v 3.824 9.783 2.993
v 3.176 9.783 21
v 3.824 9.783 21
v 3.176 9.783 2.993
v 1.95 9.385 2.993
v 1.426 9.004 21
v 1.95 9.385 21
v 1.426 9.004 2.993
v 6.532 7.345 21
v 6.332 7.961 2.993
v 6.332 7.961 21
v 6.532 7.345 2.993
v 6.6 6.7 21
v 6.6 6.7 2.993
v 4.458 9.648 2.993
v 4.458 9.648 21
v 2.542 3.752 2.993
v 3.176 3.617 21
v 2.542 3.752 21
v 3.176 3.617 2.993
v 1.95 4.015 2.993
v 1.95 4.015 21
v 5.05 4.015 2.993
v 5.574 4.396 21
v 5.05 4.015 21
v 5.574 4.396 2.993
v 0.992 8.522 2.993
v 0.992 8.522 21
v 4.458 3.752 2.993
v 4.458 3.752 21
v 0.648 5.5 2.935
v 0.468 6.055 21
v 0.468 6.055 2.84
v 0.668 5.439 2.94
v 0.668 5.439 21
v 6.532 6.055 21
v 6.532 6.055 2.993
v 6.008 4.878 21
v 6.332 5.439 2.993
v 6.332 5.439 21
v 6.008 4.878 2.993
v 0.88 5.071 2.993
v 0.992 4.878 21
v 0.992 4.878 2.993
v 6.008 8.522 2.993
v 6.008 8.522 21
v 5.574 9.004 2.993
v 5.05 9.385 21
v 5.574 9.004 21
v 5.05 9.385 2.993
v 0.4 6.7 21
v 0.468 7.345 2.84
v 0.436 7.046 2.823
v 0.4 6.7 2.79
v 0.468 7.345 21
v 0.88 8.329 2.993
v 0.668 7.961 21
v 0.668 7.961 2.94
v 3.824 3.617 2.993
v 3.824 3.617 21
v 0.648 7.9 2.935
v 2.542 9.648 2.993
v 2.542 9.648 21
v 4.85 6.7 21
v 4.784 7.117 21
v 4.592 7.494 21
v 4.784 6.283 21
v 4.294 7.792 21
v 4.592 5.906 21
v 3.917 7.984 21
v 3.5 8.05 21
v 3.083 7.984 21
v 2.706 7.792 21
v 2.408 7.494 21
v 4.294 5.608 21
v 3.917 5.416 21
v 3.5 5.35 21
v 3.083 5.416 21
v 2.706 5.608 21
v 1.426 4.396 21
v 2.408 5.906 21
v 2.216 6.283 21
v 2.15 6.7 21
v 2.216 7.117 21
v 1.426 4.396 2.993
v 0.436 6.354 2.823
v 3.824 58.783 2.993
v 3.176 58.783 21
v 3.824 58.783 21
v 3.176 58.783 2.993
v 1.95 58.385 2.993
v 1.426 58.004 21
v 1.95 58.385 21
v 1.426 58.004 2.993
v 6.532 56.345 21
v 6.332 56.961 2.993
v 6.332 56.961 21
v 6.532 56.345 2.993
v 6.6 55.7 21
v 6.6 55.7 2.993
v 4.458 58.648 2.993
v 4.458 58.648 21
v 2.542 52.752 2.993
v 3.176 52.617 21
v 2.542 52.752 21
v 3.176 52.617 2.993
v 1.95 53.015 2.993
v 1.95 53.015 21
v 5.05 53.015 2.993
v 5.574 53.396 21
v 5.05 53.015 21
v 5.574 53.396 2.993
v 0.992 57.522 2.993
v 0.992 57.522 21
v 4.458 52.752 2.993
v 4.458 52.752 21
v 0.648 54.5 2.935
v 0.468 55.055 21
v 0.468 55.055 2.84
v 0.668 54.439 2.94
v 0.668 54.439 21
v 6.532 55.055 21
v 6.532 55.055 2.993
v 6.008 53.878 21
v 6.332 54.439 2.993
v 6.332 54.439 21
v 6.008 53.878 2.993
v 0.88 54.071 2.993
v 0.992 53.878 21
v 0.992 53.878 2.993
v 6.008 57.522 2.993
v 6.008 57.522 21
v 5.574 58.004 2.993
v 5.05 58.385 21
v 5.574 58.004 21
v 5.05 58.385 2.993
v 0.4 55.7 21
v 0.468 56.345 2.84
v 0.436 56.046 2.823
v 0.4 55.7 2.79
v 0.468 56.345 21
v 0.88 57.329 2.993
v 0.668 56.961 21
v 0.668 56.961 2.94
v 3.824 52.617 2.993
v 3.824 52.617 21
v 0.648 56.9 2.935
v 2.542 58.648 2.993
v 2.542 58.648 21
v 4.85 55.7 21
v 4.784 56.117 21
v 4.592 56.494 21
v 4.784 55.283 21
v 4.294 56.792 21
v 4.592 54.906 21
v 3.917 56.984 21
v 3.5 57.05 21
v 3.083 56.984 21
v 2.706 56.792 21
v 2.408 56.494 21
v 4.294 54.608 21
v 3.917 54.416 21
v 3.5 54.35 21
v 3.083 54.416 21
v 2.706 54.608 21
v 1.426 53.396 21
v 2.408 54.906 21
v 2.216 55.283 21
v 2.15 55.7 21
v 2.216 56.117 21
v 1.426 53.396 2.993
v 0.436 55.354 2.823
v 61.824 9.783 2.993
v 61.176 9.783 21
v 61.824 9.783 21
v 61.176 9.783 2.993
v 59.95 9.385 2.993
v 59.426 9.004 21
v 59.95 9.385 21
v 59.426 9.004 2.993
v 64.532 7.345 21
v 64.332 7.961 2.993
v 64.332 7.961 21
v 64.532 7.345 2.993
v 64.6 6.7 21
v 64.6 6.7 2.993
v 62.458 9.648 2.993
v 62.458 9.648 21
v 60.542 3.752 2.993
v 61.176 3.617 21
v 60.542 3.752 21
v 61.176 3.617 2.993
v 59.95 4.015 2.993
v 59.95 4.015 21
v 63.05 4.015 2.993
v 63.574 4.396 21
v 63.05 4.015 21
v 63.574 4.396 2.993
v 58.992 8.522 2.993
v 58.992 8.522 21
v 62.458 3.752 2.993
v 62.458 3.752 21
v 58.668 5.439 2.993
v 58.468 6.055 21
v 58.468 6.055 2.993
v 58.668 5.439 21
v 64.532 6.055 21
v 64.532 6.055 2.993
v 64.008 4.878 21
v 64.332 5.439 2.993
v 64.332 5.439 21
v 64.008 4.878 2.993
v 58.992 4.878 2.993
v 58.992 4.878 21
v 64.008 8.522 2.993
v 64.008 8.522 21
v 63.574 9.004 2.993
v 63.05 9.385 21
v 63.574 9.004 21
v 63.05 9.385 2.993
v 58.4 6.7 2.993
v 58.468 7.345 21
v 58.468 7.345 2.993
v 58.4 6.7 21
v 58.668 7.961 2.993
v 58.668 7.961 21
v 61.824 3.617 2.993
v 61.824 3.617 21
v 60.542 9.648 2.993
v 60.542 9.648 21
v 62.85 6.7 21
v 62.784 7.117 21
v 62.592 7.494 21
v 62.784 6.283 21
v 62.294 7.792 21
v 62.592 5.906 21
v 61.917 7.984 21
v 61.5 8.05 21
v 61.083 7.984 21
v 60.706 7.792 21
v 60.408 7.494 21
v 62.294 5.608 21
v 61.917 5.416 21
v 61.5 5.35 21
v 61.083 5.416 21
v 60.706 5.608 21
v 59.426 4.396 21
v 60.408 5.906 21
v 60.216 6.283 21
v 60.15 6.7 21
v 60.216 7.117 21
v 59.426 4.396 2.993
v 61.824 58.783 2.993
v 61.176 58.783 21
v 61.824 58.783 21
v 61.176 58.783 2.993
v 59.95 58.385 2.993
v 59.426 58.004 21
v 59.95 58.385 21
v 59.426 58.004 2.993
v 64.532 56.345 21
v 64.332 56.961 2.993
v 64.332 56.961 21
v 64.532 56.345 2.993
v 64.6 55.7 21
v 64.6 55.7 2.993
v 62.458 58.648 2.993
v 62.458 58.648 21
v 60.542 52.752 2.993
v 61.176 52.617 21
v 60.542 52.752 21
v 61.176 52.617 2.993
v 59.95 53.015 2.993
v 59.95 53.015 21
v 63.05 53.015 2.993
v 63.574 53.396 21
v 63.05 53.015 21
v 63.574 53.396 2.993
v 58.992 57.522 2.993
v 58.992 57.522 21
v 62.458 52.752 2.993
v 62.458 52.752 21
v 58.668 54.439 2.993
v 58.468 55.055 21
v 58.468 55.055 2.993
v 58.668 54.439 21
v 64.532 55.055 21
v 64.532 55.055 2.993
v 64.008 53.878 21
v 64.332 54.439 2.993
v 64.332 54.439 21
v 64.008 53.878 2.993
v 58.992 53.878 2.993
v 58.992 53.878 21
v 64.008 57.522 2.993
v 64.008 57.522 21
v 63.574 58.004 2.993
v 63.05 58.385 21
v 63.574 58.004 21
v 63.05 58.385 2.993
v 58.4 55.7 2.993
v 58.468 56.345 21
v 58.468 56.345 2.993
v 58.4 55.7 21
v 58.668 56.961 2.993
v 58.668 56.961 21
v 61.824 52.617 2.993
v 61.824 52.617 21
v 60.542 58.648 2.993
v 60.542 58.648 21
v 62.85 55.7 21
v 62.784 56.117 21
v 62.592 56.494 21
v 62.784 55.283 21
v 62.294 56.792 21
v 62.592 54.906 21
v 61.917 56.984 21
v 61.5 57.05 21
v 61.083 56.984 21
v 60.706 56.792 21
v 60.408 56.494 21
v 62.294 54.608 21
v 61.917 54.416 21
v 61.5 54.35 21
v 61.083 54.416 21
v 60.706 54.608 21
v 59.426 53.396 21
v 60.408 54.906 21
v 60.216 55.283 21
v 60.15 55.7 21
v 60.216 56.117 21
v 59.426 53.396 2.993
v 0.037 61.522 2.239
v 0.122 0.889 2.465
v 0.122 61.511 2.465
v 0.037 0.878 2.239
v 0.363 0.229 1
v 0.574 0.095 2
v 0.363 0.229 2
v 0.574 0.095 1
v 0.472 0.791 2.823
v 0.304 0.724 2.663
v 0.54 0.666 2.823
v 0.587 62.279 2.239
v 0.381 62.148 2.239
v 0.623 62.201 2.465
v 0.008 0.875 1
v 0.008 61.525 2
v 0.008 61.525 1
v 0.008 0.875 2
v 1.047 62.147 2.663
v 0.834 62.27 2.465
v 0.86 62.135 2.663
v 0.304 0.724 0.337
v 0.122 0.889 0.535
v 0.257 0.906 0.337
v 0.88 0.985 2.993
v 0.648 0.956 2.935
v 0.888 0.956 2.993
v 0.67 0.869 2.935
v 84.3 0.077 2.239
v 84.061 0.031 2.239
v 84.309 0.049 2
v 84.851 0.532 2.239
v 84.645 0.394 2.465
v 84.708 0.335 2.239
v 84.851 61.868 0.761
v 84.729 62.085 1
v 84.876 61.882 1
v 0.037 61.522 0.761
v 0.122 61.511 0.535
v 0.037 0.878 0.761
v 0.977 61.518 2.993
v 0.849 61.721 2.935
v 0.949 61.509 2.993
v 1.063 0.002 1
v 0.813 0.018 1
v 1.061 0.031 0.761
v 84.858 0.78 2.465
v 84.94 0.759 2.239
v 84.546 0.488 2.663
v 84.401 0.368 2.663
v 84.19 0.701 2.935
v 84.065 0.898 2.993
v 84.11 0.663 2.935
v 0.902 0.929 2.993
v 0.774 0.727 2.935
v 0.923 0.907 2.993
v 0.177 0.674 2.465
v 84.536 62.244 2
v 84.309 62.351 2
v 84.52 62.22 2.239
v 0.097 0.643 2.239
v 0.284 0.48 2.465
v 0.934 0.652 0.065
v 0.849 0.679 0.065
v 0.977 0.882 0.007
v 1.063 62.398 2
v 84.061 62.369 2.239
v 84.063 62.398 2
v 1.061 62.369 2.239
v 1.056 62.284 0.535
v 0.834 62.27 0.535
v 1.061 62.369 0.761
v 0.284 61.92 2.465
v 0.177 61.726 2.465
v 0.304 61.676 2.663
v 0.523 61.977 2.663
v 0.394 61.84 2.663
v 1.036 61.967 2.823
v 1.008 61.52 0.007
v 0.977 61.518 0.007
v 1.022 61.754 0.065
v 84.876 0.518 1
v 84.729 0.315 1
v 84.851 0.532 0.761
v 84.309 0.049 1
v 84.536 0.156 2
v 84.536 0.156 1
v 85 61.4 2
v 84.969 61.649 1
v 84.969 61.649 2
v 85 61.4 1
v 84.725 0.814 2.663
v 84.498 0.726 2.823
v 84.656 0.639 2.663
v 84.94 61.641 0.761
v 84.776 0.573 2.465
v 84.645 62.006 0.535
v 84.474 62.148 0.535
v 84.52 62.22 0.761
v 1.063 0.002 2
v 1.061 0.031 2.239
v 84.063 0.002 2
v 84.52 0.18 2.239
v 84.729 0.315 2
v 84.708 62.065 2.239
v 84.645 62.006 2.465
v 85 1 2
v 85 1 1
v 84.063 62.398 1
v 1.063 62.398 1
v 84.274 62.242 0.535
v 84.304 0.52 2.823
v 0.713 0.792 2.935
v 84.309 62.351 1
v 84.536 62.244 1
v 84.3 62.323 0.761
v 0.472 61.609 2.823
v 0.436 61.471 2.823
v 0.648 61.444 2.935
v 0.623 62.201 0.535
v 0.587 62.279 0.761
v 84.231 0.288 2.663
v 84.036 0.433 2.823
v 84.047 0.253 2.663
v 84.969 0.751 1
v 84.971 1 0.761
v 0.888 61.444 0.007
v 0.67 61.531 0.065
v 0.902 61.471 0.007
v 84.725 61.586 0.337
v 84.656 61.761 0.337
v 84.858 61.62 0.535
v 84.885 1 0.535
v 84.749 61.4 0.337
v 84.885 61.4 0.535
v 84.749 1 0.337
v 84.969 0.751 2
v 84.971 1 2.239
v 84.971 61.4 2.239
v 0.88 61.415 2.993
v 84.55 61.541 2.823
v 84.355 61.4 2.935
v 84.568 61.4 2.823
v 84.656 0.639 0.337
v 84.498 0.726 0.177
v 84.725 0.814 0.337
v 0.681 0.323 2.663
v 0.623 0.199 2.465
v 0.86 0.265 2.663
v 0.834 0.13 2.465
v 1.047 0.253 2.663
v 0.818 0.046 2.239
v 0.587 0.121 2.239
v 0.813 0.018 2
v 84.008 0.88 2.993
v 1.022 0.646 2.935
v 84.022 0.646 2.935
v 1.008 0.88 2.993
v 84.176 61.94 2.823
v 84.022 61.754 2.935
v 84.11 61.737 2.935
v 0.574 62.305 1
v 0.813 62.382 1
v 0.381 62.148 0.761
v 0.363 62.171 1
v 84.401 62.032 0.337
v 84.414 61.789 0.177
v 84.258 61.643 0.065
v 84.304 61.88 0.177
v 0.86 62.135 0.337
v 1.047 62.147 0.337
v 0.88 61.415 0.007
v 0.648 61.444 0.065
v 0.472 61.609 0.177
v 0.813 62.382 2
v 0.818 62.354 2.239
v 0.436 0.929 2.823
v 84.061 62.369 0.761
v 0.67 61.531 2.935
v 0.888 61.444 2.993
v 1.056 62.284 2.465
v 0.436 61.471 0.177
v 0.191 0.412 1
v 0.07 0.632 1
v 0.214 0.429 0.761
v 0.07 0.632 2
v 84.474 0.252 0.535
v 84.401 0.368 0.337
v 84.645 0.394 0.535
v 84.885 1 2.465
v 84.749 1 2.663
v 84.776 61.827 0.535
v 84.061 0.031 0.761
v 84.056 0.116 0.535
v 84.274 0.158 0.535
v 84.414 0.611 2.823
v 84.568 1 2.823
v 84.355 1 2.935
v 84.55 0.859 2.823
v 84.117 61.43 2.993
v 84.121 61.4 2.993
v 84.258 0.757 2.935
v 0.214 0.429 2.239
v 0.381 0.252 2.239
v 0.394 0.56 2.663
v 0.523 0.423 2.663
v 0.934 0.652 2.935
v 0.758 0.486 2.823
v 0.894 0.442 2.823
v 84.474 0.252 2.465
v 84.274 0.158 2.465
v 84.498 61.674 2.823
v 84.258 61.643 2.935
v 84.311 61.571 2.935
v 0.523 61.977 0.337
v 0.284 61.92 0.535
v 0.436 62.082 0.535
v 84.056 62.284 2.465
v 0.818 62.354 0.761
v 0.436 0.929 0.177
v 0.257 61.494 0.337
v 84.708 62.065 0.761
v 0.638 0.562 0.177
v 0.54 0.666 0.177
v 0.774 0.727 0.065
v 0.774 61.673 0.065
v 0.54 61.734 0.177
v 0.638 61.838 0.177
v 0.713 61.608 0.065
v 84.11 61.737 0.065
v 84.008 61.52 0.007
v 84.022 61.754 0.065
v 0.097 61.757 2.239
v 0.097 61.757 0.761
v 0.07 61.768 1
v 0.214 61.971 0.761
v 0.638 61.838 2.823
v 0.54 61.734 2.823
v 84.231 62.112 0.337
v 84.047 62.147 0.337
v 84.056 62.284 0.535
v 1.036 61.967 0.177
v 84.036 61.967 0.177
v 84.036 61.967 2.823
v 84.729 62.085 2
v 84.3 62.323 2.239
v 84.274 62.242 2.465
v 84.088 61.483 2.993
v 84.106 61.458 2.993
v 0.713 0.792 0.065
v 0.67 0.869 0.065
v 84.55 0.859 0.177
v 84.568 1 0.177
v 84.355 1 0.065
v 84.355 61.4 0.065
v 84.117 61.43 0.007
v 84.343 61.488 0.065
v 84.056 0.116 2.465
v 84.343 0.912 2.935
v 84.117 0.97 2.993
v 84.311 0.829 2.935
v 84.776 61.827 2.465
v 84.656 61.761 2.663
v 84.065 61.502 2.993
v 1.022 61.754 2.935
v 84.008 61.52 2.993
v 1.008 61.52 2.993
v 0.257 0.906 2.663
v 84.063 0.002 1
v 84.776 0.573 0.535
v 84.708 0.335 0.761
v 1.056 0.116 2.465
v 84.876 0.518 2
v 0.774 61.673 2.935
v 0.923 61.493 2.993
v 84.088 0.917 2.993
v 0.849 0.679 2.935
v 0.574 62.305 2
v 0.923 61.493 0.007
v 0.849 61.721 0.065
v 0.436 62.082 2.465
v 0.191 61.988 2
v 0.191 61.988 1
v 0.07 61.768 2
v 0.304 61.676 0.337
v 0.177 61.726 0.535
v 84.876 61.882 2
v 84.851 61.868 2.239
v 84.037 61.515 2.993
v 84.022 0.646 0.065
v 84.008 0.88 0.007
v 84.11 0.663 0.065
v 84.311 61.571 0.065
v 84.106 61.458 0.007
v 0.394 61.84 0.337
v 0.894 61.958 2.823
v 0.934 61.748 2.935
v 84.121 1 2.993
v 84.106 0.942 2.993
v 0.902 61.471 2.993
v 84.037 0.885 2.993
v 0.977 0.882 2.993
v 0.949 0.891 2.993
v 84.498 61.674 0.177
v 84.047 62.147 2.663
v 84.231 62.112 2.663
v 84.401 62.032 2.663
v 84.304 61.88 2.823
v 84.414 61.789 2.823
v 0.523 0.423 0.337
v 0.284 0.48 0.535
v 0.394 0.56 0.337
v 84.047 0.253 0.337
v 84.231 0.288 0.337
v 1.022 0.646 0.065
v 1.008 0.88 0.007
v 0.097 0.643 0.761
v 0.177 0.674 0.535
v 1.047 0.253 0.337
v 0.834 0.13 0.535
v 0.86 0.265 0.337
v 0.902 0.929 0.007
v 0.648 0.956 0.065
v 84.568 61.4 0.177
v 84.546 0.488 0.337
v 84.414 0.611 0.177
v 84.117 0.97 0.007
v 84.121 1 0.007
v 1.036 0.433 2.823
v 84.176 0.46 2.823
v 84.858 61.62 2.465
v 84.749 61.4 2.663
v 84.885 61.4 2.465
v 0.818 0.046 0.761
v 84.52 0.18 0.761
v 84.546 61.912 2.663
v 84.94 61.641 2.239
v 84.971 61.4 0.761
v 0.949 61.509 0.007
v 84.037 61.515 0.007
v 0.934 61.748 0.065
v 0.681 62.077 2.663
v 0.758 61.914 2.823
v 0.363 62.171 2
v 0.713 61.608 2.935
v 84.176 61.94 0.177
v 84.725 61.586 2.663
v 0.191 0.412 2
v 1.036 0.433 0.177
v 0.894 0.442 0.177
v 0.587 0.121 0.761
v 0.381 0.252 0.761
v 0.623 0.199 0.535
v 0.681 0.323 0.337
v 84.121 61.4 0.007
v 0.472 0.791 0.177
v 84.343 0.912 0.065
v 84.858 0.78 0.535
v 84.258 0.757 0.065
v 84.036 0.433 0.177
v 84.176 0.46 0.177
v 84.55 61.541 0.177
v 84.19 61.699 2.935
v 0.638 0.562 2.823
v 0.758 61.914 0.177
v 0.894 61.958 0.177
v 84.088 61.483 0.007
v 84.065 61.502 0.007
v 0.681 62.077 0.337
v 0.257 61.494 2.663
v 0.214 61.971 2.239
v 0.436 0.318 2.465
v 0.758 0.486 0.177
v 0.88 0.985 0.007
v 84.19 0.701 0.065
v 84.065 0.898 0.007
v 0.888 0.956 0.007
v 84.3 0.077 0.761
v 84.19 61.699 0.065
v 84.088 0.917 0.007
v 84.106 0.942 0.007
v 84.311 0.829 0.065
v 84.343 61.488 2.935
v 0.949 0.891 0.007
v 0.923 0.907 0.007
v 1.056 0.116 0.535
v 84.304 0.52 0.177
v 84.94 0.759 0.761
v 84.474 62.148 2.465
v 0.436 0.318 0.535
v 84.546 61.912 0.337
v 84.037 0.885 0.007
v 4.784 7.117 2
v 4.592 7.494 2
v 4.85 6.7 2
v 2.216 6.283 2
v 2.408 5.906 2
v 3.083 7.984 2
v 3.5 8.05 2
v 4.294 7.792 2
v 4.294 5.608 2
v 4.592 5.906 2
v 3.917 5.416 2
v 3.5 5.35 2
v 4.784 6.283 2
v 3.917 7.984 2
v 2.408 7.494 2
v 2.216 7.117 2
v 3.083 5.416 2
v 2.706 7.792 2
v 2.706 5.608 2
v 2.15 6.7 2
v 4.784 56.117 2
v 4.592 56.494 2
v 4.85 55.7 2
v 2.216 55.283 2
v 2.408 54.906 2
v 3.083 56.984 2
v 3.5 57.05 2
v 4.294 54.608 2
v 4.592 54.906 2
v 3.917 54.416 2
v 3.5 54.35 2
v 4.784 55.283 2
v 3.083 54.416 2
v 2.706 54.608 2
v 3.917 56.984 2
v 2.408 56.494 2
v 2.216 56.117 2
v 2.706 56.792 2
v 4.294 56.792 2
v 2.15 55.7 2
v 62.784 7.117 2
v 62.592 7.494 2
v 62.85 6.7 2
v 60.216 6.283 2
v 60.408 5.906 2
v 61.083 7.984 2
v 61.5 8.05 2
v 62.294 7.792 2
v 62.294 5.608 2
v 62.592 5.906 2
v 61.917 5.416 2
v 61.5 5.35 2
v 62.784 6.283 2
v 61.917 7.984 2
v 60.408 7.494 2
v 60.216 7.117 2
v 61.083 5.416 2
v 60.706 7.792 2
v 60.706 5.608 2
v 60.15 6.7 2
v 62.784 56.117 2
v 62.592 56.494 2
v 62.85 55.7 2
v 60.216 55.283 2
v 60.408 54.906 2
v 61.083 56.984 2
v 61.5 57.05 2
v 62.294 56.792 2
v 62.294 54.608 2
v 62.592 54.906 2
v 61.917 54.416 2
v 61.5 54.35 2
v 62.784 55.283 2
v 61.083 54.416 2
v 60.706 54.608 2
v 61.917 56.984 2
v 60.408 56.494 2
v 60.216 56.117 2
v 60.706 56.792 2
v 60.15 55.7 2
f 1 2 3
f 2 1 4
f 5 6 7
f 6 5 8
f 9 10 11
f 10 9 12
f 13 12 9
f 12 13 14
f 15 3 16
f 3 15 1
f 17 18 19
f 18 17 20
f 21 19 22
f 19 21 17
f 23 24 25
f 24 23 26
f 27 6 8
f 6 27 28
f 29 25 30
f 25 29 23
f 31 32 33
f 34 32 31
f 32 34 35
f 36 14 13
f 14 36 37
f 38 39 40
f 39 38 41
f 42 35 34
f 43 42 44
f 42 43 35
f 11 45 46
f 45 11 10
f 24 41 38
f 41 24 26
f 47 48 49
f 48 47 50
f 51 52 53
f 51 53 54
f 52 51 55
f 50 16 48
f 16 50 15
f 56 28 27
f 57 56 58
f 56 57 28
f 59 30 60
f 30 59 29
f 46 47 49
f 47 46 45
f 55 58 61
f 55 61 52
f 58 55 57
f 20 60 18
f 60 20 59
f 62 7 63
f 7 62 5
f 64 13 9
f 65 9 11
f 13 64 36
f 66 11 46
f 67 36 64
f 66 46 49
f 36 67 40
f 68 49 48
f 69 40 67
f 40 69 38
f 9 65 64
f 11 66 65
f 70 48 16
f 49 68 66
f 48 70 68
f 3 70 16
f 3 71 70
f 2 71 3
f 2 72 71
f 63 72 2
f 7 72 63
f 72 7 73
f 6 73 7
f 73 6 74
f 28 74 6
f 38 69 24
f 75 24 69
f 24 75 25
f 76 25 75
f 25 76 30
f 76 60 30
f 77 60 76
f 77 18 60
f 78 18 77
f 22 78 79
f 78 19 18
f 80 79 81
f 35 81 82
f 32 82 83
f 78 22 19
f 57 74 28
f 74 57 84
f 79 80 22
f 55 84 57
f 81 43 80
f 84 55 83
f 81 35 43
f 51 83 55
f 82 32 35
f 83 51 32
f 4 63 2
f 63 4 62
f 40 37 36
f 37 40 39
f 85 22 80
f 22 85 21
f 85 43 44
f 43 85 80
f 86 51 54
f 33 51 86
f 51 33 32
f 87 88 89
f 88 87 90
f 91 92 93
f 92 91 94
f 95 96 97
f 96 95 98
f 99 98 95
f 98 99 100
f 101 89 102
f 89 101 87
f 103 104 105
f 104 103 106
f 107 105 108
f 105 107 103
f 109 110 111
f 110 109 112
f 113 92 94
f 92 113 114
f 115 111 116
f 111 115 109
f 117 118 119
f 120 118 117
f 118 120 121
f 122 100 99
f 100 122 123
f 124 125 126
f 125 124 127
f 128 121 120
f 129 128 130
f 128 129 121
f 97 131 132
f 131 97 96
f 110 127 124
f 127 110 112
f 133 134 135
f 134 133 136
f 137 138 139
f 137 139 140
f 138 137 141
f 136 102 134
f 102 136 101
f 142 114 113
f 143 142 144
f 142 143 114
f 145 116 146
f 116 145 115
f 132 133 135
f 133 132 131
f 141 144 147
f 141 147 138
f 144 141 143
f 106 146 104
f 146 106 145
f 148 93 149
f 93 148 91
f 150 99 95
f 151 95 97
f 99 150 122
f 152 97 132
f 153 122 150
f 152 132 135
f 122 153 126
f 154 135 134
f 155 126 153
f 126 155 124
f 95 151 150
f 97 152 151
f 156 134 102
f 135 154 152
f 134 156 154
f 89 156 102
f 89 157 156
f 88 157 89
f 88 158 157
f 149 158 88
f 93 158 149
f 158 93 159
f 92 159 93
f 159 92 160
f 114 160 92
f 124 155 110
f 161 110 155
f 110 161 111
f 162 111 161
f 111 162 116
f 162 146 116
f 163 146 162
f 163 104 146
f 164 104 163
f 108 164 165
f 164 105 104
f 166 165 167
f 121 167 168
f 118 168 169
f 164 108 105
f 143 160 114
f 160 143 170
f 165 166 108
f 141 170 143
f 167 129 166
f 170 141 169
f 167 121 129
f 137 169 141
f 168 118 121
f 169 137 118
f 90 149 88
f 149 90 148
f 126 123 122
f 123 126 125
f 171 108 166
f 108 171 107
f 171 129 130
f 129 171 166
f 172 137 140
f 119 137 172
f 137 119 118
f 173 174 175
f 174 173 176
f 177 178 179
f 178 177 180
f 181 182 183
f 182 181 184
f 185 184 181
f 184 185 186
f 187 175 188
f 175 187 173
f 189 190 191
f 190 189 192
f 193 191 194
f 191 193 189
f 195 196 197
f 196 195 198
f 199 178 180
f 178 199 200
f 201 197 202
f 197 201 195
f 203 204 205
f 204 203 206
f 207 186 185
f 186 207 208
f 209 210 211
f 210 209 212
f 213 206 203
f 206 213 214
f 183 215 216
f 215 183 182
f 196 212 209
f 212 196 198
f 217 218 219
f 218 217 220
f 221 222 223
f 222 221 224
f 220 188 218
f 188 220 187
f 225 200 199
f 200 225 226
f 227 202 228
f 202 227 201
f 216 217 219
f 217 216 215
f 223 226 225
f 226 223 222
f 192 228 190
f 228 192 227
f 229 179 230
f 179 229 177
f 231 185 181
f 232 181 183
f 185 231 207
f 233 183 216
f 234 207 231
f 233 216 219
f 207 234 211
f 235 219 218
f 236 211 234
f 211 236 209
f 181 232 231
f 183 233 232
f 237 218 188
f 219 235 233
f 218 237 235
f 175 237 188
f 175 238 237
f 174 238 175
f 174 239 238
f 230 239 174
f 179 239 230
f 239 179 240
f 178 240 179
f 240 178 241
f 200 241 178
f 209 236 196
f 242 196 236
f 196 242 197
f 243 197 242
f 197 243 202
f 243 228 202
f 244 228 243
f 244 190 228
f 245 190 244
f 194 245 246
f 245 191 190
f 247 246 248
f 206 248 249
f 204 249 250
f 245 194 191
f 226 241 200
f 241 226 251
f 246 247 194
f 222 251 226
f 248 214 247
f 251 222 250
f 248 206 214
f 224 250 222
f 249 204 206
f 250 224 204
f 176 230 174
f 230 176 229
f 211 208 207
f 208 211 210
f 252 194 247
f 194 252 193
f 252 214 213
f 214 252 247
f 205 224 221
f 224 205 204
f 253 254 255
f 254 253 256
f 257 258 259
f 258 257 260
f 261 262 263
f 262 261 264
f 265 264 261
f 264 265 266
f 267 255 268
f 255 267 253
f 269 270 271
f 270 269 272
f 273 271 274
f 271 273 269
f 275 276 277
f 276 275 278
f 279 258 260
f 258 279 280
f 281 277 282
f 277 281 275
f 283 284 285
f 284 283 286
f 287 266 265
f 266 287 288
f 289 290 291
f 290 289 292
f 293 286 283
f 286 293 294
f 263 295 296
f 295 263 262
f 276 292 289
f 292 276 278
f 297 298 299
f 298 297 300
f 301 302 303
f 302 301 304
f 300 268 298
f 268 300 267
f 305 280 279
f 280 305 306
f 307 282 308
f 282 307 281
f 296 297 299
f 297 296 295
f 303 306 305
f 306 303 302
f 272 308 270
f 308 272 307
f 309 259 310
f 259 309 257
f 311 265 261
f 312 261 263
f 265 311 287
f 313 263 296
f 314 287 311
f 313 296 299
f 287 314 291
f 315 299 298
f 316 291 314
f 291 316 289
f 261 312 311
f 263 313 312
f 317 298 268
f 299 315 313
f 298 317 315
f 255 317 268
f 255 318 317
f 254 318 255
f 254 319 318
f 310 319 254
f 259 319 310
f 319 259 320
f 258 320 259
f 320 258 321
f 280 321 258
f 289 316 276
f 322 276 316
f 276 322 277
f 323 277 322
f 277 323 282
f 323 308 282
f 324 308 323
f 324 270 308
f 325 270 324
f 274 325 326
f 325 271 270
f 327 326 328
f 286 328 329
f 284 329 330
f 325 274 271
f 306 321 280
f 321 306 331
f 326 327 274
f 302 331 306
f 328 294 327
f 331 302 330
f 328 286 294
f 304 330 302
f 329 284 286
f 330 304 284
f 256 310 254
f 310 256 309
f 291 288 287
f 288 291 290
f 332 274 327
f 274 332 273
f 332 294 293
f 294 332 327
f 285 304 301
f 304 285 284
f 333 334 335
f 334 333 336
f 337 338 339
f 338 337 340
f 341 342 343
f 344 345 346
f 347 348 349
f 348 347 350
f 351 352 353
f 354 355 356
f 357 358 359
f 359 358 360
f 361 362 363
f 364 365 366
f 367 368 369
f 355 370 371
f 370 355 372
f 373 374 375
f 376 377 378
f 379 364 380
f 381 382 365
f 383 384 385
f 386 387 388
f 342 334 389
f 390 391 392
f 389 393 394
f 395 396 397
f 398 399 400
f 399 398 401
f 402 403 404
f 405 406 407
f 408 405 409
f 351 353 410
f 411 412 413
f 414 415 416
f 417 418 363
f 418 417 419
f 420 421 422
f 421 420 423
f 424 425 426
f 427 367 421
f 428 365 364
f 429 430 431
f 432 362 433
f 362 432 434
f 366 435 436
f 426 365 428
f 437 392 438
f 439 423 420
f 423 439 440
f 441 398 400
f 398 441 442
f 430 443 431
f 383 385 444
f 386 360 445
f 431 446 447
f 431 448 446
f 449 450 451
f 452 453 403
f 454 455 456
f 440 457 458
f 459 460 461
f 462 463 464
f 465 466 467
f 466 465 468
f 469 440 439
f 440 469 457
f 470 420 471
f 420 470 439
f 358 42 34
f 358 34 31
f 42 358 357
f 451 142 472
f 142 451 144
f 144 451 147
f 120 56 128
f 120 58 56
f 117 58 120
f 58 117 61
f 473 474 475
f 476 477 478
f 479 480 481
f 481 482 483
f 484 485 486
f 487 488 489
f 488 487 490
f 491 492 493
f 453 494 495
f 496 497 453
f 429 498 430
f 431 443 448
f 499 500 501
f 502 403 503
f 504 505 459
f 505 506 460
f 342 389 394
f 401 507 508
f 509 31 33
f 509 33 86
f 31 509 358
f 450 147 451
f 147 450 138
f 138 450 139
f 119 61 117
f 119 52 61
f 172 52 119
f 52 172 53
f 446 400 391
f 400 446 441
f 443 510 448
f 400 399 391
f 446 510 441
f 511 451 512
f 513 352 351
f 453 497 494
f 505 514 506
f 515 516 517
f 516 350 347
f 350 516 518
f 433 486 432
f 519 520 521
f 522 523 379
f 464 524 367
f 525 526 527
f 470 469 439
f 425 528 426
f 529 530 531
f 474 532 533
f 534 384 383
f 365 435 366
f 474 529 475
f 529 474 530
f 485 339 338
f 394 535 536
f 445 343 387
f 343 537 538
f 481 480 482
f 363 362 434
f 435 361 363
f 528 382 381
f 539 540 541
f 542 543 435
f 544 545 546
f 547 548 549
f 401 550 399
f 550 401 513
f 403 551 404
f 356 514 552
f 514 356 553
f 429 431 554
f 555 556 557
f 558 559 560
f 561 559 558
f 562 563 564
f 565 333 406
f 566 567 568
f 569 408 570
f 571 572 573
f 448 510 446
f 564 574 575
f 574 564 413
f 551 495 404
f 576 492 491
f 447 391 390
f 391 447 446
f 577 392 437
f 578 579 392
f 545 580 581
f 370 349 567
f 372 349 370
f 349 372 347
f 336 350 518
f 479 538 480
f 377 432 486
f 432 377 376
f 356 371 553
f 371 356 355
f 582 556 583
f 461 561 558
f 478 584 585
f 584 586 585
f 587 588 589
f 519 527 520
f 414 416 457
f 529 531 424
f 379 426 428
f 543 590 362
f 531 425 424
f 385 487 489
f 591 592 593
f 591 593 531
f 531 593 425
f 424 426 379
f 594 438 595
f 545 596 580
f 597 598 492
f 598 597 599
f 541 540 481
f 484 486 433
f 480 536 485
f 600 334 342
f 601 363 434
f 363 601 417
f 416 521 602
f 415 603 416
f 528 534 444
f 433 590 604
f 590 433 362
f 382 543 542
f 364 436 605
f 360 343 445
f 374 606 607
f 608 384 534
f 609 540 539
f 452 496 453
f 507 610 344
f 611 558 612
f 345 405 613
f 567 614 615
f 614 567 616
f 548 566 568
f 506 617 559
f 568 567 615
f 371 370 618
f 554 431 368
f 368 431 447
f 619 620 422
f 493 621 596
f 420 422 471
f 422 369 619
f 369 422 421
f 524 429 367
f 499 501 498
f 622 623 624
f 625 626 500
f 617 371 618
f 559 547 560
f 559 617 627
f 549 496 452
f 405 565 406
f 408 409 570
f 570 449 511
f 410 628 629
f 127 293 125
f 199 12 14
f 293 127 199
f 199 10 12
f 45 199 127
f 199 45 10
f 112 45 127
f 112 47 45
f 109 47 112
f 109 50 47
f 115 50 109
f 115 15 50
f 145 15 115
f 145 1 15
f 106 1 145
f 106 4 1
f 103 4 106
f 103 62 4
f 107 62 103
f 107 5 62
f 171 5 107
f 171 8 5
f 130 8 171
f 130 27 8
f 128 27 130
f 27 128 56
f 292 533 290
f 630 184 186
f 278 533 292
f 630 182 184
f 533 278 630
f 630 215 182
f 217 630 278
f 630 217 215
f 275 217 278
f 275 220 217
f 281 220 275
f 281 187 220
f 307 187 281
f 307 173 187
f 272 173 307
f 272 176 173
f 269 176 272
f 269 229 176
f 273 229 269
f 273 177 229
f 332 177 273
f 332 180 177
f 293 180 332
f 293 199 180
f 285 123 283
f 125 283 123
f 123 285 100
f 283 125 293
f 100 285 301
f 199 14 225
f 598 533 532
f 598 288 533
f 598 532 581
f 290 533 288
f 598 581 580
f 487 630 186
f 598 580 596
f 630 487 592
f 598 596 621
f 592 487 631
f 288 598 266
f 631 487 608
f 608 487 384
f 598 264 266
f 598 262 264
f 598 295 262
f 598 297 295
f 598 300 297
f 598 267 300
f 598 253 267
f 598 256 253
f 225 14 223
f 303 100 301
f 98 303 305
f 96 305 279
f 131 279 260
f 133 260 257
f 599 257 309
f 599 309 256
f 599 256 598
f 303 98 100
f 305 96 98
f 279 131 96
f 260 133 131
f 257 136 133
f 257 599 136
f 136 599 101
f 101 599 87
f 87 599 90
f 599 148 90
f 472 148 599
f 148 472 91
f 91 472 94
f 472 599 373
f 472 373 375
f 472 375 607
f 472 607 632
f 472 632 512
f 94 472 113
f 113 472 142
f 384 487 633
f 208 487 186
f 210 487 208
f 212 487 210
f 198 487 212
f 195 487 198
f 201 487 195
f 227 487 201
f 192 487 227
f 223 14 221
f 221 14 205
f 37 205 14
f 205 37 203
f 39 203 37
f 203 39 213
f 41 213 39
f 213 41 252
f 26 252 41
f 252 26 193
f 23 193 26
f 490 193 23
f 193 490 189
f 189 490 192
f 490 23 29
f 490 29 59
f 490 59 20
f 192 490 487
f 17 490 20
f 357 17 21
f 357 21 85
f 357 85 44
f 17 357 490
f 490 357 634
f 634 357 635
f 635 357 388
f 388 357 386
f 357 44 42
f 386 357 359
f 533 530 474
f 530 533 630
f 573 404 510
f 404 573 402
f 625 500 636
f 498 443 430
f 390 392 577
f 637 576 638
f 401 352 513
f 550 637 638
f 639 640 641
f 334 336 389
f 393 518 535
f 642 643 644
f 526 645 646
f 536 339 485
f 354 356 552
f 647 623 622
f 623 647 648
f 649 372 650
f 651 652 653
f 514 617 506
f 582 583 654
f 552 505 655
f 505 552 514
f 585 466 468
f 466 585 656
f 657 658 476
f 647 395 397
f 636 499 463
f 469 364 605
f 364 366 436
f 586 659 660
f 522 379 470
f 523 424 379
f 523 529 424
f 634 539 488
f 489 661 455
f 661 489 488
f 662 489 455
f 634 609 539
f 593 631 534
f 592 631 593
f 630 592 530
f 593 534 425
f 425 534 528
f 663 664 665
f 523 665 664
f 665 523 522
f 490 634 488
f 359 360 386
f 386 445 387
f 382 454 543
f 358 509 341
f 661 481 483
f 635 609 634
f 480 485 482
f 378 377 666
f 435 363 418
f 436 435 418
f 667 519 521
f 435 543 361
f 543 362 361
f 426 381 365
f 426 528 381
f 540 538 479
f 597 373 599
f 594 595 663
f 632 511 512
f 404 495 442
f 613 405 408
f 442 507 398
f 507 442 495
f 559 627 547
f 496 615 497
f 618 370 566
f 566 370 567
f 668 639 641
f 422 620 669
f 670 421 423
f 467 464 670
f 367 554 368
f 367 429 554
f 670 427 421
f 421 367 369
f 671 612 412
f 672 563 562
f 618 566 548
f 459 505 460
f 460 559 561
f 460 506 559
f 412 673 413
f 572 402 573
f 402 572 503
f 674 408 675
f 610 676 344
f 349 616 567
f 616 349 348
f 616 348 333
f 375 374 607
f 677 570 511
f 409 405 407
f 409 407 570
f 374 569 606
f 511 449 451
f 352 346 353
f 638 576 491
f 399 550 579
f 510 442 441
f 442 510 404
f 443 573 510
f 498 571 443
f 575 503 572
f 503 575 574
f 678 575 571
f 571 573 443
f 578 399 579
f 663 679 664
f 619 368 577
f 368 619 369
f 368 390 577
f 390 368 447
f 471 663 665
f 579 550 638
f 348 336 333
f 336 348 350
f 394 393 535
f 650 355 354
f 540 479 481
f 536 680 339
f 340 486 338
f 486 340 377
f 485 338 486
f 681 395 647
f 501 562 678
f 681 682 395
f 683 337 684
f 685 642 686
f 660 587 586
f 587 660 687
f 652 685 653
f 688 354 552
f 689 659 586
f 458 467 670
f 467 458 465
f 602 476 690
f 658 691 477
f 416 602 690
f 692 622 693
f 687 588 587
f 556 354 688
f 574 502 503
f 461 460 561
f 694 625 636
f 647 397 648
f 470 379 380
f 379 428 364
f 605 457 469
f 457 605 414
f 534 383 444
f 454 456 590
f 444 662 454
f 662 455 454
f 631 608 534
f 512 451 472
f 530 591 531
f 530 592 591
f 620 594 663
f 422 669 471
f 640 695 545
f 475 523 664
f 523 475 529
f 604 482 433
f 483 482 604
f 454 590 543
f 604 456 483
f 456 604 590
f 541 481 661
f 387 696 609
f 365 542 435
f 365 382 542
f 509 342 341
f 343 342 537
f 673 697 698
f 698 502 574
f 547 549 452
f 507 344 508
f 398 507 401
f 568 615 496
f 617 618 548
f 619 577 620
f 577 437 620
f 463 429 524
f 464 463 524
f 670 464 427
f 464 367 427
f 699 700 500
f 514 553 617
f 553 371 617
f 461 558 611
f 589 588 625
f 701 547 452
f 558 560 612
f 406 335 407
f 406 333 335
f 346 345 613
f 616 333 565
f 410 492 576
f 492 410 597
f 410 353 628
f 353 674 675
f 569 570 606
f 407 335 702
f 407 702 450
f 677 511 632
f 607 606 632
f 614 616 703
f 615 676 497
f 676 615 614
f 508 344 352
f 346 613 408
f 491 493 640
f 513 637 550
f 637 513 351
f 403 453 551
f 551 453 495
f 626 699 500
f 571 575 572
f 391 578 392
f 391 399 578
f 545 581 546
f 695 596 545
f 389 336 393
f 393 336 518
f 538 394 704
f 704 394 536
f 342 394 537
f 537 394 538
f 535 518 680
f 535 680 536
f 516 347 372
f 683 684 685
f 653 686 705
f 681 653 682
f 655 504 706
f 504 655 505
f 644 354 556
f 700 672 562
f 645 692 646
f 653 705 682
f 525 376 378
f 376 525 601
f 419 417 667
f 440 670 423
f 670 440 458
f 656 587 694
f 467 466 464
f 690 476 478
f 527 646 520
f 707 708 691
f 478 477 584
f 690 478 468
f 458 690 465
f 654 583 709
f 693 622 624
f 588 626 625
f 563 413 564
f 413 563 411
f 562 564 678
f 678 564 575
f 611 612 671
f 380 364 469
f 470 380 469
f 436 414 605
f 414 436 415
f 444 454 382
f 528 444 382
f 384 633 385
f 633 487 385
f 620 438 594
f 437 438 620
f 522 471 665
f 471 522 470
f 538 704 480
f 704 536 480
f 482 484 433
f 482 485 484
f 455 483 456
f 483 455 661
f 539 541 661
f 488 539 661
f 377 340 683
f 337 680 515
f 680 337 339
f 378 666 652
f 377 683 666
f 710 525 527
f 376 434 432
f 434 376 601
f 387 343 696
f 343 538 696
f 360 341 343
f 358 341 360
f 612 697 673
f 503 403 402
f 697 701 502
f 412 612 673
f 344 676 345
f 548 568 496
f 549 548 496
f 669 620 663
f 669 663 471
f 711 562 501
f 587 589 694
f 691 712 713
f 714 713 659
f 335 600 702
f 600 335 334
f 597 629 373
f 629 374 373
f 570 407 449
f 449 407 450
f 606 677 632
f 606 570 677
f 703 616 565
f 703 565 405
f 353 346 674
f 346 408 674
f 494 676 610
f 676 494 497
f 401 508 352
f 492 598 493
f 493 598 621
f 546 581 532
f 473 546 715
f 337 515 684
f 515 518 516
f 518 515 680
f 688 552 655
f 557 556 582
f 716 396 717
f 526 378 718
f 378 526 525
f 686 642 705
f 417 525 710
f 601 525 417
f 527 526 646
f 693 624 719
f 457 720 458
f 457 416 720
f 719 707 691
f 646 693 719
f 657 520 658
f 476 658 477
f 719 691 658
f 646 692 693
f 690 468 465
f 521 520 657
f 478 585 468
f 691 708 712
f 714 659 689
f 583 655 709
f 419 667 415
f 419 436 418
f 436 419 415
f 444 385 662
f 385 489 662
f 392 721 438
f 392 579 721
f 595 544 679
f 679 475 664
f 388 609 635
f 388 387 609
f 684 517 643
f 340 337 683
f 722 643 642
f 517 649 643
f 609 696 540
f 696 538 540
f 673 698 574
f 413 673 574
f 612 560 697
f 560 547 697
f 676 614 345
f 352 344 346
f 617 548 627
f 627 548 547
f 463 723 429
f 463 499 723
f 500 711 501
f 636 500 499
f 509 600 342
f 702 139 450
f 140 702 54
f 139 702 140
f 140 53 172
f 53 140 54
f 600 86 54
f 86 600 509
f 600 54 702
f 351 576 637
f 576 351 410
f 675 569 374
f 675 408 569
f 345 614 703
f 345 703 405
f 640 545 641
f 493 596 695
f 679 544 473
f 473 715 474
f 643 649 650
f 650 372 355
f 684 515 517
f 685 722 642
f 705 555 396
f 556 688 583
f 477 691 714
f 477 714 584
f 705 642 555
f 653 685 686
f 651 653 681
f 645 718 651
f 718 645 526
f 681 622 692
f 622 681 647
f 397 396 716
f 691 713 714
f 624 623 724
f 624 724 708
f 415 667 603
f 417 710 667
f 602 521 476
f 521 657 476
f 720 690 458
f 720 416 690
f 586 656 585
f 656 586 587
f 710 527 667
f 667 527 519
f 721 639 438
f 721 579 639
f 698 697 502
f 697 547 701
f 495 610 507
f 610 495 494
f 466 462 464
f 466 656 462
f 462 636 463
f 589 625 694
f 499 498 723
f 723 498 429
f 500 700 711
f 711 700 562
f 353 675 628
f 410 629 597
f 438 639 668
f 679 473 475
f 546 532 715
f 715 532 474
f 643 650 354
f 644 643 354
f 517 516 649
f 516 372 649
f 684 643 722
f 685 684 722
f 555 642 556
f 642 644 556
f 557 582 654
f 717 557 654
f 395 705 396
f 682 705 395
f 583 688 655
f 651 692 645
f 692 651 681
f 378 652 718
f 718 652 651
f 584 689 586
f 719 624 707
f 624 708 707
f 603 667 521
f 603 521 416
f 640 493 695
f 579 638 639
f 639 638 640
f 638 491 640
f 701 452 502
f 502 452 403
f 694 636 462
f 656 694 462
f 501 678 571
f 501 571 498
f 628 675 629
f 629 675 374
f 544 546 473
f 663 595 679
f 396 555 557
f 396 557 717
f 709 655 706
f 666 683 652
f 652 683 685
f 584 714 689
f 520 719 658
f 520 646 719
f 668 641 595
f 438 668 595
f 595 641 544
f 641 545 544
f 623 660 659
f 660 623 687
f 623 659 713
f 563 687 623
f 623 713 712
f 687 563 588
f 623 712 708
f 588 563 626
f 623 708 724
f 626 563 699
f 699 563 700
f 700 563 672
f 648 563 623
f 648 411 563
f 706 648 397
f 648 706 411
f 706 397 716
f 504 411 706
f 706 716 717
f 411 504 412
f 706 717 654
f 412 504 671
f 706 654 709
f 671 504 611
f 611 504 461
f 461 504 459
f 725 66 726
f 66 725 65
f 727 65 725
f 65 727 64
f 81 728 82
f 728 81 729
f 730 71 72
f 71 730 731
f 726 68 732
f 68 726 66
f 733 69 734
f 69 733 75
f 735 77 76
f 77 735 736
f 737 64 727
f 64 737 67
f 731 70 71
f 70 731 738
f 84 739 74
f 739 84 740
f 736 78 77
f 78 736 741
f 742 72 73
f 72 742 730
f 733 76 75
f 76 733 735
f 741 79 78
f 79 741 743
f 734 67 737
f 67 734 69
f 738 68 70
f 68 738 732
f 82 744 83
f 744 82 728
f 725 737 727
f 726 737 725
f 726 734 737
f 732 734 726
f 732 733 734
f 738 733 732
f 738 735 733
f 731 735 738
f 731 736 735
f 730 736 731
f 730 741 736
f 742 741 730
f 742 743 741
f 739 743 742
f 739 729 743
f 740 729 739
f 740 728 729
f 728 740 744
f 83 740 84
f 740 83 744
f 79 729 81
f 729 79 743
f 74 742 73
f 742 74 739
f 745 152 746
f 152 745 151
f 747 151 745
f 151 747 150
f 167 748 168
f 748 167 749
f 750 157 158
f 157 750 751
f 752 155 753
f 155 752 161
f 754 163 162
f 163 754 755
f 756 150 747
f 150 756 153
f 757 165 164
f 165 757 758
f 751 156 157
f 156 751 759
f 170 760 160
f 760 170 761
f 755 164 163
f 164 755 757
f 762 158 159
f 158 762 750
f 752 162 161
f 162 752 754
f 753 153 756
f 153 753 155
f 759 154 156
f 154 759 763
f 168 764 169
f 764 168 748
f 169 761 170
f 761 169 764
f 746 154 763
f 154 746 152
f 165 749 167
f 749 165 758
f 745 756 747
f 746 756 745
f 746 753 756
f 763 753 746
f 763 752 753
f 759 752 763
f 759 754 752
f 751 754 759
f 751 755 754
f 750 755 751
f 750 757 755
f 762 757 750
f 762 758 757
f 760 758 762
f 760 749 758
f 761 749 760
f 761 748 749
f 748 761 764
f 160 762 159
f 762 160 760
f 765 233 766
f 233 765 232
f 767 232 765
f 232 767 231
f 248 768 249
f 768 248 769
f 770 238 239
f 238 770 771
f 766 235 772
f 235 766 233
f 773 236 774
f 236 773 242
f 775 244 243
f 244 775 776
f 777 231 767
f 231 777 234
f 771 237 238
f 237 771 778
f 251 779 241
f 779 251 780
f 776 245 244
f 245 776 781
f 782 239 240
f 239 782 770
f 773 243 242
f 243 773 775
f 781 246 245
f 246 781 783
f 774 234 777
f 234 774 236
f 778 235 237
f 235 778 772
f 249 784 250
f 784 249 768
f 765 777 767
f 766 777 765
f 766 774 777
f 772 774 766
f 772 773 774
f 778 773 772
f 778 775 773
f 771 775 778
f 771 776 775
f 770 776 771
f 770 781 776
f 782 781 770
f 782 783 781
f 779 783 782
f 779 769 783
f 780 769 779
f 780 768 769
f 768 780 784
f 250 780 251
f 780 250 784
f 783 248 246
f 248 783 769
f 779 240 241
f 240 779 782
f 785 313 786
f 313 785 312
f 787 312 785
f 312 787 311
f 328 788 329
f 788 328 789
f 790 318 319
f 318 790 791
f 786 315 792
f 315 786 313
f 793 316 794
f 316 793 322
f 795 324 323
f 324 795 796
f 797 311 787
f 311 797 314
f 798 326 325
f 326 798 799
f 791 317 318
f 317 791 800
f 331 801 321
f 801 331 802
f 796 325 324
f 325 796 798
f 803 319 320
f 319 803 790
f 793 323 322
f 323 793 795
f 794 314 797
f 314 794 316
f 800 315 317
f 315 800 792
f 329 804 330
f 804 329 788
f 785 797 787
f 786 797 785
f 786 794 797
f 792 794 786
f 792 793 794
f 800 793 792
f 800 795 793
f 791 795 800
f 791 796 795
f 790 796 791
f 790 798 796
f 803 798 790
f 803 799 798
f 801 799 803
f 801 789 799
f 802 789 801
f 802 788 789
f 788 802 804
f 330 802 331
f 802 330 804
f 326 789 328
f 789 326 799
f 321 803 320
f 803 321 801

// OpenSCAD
module hole(x, y) {
    translate([x,y,2])
    cylinder(25, d=2.7, $fn=20);
}

module pin(x, y) {
    translate([x,y,0])
    cylinder(14, d=2.5, $fn=30);
}

module standoff(x, y) {
    translate([x,y,0])
    cylinder(17+3, d=6.2, $fn=30);
}

module rpi_base() {
    translate([1,1,1])
    minkowski(){
        sphere(d=2, $fn=25);
        cube([85-2, 62.4-2, 3-2]);
    }
}

difference() {
    union() {
        rpi_base();
        translate([0,0,1])
        union() {
            standoff(3.5, 6.7);
            standoff(3.5, 55.7);
            standoff(61.5, 6.7);
            standoff(61.5, 55.7);
        }
    }
    hole(3.5, 6.7);
    hole(3.5, 55.7);
    hole(61.5, 6.7);
    hole(61.5, 55.7);
}
